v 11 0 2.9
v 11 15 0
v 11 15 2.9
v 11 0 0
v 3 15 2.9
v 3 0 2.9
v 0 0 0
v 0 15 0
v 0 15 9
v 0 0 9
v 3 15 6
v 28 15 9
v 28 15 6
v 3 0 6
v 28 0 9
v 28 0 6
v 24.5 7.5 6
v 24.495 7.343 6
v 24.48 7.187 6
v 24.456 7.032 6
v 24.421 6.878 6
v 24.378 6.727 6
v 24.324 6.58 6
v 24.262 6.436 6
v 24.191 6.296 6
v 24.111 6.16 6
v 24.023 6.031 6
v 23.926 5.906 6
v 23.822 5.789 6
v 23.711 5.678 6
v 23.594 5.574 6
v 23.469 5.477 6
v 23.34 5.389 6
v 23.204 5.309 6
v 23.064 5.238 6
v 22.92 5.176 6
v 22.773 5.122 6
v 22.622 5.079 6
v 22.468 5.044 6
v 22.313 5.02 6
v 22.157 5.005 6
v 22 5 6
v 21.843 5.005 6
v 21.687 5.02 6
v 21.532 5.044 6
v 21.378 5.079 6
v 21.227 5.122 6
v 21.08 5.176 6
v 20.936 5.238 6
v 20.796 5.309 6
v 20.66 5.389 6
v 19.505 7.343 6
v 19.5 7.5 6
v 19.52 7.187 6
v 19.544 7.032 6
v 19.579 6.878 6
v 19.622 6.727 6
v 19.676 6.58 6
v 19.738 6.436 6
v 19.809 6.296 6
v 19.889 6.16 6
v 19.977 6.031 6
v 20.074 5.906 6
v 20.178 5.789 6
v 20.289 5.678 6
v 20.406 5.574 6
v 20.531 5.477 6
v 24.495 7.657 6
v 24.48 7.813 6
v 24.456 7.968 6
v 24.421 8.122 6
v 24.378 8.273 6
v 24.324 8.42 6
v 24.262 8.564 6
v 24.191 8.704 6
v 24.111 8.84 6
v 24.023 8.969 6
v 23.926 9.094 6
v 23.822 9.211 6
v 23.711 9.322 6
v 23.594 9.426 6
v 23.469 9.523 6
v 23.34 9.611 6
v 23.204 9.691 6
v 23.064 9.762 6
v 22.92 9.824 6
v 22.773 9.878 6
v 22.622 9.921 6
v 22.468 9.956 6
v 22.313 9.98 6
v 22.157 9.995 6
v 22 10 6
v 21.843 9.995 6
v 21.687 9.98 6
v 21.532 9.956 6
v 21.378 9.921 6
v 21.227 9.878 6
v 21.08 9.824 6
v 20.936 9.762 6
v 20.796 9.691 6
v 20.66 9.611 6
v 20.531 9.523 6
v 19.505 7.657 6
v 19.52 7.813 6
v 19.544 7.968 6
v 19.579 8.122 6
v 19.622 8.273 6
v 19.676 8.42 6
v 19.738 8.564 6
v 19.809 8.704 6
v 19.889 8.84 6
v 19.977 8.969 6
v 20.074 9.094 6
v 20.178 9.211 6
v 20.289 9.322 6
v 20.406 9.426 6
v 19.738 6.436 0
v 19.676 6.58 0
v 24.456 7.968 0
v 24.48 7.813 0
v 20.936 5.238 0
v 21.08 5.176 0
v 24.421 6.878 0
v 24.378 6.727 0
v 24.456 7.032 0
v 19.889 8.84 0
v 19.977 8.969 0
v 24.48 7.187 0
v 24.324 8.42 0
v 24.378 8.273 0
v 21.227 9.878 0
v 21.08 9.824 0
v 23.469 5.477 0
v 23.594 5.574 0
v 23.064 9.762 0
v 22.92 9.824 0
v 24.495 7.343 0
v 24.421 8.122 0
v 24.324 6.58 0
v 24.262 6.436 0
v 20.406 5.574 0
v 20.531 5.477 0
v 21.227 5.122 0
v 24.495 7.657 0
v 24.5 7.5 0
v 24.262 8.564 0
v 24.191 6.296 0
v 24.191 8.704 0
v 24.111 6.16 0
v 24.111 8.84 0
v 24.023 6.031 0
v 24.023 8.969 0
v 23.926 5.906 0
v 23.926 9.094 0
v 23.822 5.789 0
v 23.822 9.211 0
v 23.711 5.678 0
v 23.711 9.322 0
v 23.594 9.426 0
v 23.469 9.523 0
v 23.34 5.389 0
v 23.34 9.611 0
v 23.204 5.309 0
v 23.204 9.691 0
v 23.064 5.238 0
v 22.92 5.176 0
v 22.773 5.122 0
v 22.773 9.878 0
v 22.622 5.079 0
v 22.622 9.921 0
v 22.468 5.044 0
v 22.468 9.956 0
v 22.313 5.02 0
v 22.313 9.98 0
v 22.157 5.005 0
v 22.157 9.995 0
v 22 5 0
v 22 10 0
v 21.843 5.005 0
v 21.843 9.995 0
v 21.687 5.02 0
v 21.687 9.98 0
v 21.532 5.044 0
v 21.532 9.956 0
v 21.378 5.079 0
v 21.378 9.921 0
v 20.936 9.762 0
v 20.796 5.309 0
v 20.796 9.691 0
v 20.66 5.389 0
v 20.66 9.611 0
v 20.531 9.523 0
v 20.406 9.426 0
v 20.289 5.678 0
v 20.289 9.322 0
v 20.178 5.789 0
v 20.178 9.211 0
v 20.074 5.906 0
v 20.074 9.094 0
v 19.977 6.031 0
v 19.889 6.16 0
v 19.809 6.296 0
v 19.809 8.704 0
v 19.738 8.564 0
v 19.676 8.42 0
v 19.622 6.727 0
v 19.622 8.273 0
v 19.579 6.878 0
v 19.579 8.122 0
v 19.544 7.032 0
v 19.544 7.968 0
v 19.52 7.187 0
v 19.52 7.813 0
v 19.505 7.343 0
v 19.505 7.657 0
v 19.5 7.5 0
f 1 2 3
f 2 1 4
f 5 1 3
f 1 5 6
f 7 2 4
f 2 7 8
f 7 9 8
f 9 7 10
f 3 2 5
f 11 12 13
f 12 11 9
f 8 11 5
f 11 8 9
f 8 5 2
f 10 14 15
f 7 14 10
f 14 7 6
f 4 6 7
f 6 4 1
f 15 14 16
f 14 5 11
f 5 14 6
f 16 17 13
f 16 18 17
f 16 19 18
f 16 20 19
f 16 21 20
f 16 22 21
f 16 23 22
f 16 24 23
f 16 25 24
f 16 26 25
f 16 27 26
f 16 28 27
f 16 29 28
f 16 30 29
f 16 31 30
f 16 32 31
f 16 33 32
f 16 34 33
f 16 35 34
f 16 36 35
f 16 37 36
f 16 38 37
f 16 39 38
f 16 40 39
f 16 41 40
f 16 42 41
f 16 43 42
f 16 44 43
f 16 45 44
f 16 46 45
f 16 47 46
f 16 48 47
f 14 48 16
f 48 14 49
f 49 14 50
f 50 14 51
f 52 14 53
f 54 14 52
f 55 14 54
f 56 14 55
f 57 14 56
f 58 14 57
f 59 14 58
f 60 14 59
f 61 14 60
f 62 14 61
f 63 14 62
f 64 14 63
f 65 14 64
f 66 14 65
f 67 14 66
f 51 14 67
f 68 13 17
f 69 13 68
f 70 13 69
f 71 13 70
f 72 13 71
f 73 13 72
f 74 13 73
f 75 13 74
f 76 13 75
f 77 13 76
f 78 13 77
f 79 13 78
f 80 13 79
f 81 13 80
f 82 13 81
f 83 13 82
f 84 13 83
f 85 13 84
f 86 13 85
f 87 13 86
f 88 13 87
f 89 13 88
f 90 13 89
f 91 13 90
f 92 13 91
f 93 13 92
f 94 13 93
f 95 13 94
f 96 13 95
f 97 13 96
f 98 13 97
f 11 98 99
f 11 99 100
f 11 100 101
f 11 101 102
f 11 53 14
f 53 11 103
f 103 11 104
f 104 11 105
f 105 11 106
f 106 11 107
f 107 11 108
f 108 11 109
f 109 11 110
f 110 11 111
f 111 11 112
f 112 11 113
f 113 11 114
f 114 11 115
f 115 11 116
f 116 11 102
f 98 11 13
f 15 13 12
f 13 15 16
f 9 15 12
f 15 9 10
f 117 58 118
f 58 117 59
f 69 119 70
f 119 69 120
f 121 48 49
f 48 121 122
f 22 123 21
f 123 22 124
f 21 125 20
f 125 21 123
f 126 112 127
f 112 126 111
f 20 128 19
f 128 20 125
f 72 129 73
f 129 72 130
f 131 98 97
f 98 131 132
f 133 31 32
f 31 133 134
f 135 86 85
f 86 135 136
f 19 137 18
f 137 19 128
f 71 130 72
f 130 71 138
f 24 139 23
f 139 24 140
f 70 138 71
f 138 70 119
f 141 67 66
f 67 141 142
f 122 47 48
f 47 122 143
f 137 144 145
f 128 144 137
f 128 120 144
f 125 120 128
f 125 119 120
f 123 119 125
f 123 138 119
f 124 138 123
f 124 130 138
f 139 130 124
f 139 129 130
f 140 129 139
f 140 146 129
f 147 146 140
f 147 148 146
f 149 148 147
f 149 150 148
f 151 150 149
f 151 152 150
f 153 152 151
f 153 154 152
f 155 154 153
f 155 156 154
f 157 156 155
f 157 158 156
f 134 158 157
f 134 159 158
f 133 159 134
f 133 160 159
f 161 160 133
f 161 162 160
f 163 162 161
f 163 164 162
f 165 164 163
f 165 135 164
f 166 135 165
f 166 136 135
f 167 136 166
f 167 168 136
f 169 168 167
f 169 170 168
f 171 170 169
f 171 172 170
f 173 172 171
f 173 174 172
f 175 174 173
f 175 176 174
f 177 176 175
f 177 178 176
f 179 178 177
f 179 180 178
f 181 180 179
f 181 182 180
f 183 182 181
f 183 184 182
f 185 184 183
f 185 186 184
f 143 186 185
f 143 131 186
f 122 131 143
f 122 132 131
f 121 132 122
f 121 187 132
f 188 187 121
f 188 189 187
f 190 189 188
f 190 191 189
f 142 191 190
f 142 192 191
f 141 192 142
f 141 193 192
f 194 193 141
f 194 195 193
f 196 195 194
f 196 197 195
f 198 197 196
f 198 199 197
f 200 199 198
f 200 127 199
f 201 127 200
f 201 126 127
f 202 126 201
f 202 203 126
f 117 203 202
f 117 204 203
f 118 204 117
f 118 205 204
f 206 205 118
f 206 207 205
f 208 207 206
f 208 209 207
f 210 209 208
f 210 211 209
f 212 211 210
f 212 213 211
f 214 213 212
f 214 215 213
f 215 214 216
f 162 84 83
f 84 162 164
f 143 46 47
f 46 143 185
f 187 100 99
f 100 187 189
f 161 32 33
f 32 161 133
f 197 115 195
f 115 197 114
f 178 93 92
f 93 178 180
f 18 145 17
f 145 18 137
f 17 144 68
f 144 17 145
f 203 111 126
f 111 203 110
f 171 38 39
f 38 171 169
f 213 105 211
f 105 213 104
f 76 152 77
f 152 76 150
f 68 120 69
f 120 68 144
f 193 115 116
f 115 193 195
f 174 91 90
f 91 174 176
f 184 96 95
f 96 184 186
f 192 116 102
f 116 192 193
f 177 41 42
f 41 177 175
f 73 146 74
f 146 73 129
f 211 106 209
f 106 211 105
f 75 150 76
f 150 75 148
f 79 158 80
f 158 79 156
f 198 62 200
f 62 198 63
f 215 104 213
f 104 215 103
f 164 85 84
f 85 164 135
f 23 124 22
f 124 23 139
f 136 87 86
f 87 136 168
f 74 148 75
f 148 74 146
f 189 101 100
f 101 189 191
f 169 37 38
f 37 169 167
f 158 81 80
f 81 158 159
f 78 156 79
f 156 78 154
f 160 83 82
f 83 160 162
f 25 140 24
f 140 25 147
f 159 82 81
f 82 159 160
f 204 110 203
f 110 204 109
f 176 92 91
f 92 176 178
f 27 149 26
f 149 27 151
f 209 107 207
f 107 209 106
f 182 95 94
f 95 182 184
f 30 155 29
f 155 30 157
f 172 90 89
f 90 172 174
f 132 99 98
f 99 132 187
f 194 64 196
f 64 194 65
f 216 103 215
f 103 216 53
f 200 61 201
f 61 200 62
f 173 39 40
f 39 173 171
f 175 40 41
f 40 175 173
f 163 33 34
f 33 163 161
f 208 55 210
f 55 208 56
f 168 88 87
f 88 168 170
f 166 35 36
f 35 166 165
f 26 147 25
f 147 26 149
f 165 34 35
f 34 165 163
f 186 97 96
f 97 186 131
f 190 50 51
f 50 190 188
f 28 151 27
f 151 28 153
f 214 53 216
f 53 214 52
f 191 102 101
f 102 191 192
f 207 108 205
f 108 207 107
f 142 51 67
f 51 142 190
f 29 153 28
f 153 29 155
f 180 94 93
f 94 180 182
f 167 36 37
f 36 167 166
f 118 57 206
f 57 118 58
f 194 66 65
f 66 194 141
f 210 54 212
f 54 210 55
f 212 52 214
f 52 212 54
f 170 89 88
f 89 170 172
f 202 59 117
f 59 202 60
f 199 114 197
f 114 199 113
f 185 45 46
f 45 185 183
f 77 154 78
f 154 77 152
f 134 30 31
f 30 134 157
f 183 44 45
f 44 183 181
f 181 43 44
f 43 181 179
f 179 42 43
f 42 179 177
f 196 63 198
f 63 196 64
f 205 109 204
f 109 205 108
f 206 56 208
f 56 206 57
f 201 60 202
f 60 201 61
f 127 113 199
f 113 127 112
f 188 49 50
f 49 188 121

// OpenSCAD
    union() {
        width=15;
        cube(size=[11,width,2.9]);

        translate([0, 0, 2])
        cube(size=[3,width,4]);
        
        translate([0, 0, 6])
        cube(size=[28,width, 3]);
    }
    union () {
        translate([22, 7.5, 0])
        cylinder(h=9, r=2.5, center=false, $fn=100);
    }
    
